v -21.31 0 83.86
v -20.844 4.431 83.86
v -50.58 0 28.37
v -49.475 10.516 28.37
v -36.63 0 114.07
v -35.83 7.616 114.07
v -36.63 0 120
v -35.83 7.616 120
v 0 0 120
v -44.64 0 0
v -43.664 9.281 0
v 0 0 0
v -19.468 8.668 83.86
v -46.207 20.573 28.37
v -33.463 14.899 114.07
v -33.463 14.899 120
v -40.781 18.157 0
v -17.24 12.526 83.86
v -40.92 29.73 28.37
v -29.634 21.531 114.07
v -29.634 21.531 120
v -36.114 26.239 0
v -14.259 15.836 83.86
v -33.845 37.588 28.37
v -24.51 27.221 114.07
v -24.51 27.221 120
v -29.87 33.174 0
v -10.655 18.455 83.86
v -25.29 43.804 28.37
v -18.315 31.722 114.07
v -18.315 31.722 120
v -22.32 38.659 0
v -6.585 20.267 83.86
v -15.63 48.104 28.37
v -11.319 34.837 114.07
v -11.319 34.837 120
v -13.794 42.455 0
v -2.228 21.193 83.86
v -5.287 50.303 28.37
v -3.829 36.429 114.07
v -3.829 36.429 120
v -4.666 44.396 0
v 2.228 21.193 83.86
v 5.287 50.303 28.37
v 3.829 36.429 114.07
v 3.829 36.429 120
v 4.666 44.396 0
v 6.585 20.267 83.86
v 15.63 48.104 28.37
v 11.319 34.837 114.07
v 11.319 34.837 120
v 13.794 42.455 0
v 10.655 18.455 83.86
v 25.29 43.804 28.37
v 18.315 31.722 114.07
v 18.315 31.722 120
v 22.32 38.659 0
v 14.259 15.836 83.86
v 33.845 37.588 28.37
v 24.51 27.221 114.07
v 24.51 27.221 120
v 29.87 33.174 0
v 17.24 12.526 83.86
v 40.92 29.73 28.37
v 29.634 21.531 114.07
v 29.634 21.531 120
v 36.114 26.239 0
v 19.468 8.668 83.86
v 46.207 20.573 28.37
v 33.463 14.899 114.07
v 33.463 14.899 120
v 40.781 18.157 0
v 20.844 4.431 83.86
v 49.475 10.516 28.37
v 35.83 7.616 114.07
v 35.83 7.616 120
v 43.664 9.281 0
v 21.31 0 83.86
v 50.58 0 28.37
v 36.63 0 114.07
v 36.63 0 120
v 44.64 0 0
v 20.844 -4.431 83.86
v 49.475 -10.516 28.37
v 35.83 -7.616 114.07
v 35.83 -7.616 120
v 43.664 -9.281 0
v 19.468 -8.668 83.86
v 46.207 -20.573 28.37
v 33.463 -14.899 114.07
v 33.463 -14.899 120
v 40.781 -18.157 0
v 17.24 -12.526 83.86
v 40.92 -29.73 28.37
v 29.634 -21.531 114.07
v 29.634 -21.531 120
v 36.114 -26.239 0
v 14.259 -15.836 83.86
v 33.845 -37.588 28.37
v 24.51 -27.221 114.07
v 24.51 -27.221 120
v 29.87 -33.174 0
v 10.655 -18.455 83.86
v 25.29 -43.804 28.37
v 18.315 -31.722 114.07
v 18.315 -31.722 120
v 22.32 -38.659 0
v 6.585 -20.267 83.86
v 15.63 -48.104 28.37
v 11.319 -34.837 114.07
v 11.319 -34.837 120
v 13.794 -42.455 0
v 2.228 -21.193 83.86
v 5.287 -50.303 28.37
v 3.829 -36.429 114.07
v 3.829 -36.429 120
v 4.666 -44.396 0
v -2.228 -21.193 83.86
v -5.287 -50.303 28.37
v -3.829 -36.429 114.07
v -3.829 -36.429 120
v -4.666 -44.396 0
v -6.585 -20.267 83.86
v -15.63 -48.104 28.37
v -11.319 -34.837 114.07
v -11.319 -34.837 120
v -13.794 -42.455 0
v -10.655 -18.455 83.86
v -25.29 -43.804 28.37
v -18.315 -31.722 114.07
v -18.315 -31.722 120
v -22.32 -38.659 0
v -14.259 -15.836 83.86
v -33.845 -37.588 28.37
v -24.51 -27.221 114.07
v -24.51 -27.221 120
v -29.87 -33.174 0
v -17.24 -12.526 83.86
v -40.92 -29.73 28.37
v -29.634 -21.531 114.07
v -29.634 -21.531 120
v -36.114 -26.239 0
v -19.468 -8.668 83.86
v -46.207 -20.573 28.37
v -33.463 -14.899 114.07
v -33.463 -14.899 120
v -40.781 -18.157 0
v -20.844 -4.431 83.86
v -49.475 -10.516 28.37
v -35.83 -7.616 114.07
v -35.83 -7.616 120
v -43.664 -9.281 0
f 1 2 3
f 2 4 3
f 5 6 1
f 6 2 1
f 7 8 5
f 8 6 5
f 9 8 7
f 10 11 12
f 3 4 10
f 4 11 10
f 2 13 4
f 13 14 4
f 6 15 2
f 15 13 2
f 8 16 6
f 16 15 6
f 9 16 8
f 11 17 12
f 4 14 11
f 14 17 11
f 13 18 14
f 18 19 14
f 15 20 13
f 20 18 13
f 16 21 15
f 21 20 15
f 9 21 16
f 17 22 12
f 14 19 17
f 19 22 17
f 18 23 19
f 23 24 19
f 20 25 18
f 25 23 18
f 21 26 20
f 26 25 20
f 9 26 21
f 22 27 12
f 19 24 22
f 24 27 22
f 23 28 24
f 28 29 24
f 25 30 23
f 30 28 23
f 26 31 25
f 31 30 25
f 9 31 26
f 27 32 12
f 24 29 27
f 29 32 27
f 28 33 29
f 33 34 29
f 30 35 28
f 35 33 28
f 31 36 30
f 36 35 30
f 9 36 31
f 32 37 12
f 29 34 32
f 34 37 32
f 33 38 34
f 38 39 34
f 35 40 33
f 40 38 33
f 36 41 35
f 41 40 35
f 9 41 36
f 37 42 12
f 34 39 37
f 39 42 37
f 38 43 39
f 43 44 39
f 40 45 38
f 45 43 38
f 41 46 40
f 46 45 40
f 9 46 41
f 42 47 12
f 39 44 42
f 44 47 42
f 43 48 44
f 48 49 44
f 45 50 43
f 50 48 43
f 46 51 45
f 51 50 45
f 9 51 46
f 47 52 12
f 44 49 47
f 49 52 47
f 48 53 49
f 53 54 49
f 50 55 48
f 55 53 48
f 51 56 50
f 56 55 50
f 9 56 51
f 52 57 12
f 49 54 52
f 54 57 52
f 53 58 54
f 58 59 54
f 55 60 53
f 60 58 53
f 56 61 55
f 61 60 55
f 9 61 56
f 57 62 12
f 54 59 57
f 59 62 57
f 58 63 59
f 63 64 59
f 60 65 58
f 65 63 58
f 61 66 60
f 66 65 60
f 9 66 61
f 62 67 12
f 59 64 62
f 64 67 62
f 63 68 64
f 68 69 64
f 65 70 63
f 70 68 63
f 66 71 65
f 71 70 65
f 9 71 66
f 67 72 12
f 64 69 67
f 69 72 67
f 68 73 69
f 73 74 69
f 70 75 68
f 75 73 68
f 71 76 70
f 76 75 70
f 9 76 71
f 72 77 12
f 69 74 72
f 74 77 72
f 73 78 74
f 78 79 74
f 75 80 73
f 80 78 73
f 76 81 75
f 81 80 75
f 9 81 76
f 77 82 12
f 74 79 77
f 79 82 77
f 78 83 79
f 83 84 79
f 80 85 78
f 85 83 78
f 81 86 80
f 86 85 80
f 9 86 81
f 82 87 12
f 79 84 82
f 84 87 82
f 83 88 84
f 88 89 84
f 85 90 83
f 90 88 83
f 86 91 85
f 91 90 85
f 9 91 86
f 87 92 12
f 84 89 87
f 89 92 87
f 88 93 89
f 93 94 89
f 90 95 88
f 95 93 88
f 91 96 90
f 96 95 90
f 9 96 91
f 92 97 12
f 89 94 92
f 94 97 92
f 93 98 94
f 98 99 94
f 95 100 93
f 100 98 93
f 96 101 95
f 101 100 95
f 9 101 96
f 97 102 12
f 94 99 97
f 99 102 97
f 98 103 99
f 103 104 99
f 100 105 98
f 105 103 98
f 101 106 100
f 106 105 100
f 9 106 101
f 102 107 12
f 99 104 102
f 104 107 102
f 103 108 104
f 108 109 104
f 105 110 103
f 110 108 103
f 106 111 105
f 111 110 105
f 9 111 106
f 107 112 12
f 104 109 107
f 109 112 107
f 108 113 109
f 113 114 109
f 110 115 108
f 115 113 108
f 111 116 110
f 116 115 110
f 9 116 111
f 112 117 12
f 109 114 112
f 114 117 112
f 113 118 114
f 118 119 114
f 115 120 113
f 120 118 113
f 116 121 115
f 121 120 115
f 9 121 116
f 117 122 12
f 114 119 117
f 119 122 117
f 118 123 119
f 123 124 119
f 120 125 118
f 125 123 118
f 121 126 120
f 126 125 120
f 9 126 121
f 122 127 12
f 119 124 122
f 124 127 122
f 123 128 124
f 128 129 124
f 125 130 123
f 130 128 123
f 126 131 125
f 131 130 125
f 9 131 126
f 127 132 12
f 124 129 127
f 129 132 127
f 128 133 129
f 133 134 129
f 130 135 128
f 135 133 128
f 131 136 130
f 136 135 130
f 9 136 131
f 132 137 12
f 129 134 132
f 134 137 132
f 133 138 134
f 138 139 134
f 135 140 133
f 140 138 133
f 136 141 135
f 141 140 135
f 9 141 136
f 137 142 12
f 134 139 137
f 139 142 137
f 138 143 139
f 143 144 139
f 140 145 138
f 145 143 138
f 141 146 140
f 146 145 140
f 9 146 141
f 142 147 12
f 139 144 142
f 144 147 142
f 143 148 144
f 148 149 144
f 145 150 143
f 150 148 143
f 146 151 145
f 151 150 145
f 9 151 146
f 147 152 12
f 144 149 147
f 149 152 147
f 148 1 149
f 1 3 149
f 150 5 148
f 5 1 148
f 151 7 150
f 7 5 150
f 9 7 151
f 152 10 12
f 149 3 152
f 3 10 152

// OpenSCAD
/* doodle-meta {"version":1,"parameters":{"height":{"label":"Overall height","description":"Total height of the vase","unit":"mm","feature":"overall_height"},"max_width":{"label":"Overall width","description":"Maximum diameter of the vase body","unit":"mm","feature":"overall_width"}},"features":{"overall_height":{"kind":"dimension","axis":"z","label":"Overall height"},"overall_width":{"kind":"dimension","axis":"x","label":"Overall width"}}} */

height = 120.0;
max_width = 107.53;

// Derived parameters
max_radius = max_width / 2.0;

// Profile points from measured view geometry
// u is normalized 0..1 across width, v is normalized 0..1 down height
// X = (u - 0.5) * max_width
// Z = (1 - v) * height
// We take the right half (u >= 0.5) to define the radius profile for rotation

// Raw points from polygon_view_normalized (right side only, sorted by Z descending)
// [u, v] -> [X, Z]
// [0.8404, 0.0494] -> X = (0.8404-0.5)*107.53 = 36.63, Z = (1-0.0494)*120 = 114.07
// [0.6985, 0.3012] -> X = (0.6985-0.5)*107.53 = 21.31, Z = (1-0.3012)*120 = 83.86
// [0.971, 0.7636]  -> X = (0.971-0.5)*107.53 = 50.58, Z = (1-0.7636)*120 = 28.37
// [0.9157, 0.9039] -> X = (0.9157-0.5)*107.53 = 44.64, Z = (1-0.9039)*120 = 11.53
// [0.4984, 0.987]  -> X = (0.4984-0.5)*107.53 = -0.17 ~ 0, Z = (1-0.987)*120 = 1.56

// To create a watertight solid via rotate_extrude, we need a closed polygon in the XZ plane.
// The polygon must start at the axis (X=0) at the bottom, go out to the profile, up to the top, and back to the axis.
// We also need to ensure the bottom is flat at Z=0.

// Define the profile points for the right half (X >= 0)
// We add a point at the bottom center (0,0) and top center (0, height) to close the shape against the axis.
// Note: The measured bottom point is at Z=1.56, but we want the vase to sit on the build plate (Z=0).
// We will extend the bottom to Z=0.

profile_points = [
    [0, 0],           // Bottom center on axis
    [44.64, 0],       // Bottom edge (extrapolated from 11.53 to 0)
    [50.58, 28.37],   // Widest point
    [21.31, 83.86],   // Neck
    [36.63, 114.07],  // Rim
    [36.63, height],  // Top edge
    [0, height]       // Top center on axis
];

module vase_profile() {
    polygon(points=profile_points);
}

module vase_body() {
    rotate_extrude(angle=360) {
        vase_profile();
    }
}

// Main design
vase_body();
